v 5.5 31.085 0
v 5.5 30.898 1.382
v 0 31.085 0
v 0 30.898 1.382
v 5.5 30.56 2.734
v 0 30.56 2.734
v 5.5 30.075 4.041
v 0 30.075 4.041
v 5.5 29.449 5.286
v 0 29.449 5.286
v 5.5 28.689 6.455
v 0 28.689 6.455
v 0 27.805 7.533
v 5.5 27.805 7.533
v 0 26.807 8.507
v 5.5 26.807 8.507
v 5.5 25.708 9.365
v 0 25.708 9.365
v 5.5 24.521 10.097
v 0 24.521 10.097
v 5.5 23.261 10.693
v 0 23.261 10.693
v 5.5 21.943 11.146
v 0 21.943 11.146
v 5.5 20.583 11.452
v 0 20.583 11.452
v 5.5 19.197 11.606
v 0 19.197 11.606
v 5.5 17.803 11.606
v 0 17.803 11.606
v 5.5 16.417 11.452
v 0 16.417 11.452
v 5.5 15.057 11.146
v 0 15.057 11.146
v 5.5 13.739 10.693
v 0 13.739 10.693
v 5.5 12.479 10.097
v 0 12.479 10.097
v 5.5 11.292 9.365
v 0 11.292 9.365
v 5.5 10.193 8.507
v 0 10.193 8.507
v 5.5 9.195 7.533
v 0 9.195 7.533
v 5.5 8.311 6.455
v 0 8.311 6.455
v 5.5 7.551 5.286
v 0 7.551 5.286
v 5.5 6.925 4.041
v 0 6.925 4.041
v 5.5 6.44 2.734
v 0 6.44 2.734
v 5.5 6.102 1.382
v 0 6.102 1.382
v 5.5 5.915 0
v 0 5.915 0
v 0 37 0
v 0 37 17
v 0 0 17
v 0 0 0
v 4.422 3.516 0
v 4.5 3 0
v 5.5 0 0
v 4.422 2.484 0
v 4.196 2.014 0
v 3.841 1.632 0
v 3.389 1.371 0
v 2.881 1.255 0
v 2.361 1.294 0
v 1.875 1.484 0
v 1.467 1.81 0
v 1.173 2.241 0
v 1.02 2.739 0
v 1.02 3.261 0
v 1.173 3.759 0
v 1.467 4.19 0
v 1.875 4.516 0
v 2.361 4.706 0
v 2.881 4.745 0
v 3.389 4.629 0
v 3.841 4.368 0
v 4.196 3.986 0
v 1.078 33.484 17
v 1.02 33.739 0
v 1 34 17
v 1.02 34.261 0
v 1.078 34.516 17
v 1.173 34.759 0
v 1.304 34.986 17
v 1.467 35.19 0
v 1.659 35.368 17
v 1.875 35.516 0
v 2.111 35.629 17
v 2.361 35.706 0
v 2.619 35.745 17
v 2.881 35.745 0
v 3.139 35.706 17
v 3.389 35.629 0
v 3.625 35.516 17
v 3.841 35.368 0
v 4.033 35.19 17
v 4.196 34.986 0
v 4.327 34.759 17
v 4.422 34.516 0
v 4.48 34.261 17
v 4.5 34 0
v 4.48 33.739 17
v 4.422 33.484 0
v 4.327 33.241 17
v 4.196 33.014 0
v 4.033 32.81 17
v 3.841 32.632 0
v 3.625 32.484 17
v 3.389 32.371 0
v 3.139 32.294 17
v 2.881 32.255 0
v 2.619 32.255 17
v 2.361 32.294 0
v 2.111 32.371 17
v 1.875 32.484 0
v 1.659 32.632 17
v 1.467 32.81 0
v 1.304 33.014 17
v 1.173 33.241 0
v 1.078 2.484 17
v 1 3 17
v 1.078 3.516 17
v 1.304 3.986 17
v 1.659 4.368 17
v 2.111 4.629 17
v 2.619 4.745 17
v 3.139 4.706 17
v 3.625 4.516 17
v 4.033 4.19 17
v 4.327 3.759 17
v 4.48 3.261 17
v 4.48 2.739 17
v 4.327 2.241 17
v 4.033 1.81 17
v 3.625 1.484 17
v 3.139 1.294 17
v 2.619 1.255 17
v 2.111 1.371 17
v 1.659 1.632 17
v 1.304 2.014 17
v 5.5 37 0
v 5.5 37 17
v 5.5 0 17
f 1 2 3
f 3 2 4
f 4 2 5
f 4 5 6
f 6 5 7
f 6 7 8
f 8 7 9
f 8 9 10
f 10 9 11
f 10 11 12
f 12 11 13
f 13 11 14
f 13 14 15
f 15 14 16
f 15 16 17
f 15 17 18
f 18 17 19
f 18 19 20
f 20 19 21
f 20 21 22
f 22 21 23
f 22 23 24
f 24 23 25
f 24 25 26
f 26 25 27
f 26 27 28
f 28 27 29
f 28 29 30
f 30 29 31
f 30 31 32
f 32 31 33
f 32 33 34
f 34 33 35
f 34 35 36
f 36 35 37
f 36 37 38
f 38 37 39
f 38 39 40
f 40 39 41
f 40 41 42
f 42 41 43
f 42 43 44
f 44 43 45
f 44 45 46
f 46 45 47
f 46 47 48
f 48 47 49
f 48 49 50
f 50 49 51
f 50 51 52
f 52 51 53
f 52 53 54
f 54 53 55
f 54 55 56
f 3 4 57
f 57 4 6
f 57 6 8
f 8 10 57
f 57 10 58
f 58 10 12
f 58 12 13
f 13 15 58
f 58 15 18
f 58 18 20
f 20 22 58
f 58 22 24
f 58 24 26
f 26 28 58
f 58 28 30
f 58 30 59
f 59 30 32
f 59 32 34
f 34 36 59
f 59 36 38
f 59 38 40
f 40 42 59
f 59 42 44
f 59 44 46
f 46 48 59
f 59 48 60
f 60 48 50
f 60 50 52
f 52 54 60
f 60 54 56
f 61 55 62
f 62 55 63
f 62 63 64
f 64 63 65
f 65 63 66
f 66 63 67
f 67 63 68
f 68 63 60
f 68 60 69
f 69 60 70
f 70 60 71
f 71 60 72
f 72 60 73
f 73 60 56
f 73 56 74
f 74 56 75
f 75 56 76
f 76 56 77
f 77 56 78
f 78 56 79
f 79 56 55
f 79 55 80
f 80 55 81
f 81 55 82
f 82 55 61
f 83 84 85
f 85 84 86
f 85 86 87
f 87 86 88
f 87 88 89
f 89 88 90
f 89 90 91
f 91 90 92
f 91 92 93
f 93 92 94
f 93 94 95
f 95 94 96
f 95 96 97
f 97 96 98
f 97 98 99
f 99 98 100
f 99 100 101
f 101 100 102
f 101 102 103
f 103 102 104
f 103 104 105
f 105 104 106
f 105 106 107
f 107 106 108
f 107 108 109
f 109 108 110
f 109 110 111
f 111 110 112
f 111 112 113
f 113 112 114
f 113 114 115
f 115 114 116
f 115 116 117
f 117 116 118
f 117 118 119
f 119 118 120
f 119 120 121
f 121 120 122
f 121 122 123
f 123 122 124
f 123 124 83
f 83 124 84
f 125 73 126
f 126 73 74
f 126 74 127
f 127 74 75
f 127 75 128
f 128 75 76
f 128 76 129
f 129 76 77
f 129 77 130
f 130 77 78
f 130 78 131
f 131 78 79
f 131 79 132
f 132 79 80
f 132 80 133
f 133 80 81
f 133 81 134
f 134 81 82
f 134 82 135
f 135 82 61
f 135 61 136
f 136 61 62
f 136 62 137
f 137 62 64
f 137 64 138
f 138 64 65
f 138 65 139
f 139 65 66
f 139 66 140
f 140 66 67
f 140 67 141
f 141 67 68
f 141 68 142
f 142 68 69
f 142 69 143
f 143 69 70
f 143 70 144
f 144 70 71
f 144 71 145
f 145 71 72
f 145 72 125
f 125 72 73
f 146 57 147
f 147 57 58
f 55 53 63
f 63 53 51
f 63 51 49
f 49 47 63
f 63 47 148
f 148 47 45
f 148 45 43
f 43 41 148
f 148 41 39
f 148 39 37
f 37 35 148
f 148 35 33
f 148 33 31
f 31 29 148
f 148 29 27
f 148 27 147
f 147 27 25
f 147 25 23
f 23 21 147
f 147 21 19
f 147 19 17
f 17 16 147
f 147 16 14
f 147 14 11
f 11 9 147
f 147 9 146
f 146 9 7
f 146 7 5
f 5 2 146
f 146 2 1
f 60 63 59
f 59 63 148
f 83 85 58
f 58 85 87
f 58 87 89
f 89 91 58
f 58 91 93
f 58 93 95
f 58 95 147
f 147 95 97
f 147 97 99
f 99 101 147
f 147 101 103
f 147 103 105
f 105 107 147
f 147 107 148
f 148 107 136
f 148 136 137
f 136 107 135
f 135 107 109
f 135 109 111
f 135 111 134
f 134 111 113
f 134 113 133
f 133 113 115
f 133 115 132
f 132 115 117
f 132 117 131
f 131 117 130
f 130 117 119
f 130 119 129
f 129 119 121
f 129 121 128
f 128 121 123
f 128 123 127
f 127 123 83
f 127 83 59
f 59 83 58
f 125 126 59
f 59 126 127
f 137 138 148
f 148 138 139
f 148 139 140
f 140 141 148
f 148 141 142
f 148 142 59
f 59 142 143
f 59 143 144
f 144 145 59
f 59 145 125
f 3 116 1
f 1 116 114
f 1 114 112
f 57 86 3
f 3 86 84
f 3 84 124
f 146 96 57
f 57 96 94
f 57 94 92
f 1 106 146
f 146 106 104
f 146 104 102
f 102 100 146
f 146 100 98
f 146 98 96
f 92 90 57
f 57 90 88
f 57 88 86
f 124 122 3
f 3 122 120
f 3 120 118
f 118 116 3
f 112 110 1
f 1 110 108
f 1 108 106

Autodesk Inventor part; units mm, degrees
ref_plane "YZ Plane" through (0, 0, 0) normal (1, 0, 0) x (0, 1, 0)
ref_plane "XZ Plane" through (0, 0, 0) normal (0, 1, 0) x (-1, 0, 0)
ref_plane "XY Plane" through (0, 0, 0) normal (0, 0, 1) x (1, 0, 0)
sketch "Sketch1" plane through (0, 0, 0) normal (0, 0, 1) x (1, 0, 0)
  line L0 (0, 0) -> (5.5, 0)
  line L1 (5.5, 0) -> (5.5, 37)
  line L2 (5.5, 37) -> (0, 37)
  line L3 (0, 37) -> (0, 0)
  line L4 (0, 0) -> (5.5, 0)
  line L5 (5.5, 0) -> (5.5, 37)
  line L6 (5.5, 37) -> (0, 37)
  line L7 (0, 37) -> (0, 0)
  line L8 (0, 0) -> (5.5, 0)
  line L9 (5.5, 0) -> (5.5, 37)
  line L10 (5.5, 37) -> (0, 37)
  line L11 (0, 37) -> (0, 0)
  line L12 (0, 0) -> (5.5, 0)
  line L13 (5.5, 0) -> (5.5, 37)
  line L14 (5.5, 37) -> (0, 37)
  line L15 (0, 37) -> (0, 0)
  point P0 (2.75, 34)
  point P1 (2.75, 3)
  point P2 (2.75, 34)
  point P3 (2.75, 3)
  point P4 (2.75, 34)
  point P5 (2.75, 3)
  point P6 (2.75, 34)
  point P7 (2.75, 3)
  dimension "d0" = 5.5
  dimension "d1" = 37
  dimension "d2" = 3
  dimension "d3" = 2.75
  dimension "d4" = 3
  dimension "d5" = 5.5
  dimension "d6" = 37
  dimension "d7" = 3
  dimension "d8" = 2.75
  dimension "d9" = 3
  dimension "d10" = 5.5
  dimension "d11" = 37
  dimension "d12" = 3
  dimension "d13" = 2.75
  dimension "d14" = 3
  dimension "d15" = 5.5
  dimension "d16" = 37
  dimension "d17" = 3
  dimension "d18" = 2.75
  dimension "d19" = 3
extrude "Extrusion1" add sketch "Sketch1" along normal blind 17
sketch "Sketch2" plane through (0, 0, 0) normal (0, 0, 1) x (1, 0, 0)
  line L0 (0, 0) -> (5.5, 0)
  line L1 (5.5, 0) -> (5.5, 37)
  line L2 (5.5, 37) -> (0, 37)
  line L3 (0, 37) -> (0, 0)
  line L4 (0, 0) -> (5.5, 0)
  line L5 (5.5, 0) -> (5.5, 37)
  line L6 (5.5, 37) -> (0, 37)
  line L7 (0, 37) -> (0, 0)
  line L8 (0, 0) -> (5.5, 0)
  line L9 (5.5, 0) -> (5.5, 37)
  line L10 (5.5, 37) -> (0, 37)
  line L11 (0, 37) -> (0, 0)
  line L12 (0, 0) -> (5.5, 0)
  line L13 (5.5, 0) -> (5.5, 37)
  line L14 (5.5, 37) -> (0, 37)
  line L15 (0, 37) -> (0, 0)
  point P0 (2.75, 34)
  point P1 (2.75, 3)
  point P2 (2.75, 34)
  point P3 (2.75, 3)
  point P4 (2.75, 34)
  point P5 (2.75, 3)
  point P6 (2.75, 34)
  point P7 (2.75, 3)
  dimension "d20" = 5.5
  dimension "d21" = 37
  dimension "d22" = 3
  dimension "d23" = 2.75
  dimension "d24" = 3
  dimension "d25" = 5.5
  dimension "d26" = 37
  dimension "d27" = 3
  dimension "d28" = 2.75
  dimension "d29" = 3
  dimension "d30" = 5.5
  dimension "d31" = 37
  dimension "d32" = 3
  dimension "d33" = 2.75
  dimension "d34" = 3
  dimension "d35" = 5.5
  dimension "d36" = 37
  dimension "d37" = 3
  dimension "d38" = 2.75
  dimension "d39" = 3
hole "Hole1" at (2.75, 34, 0) at (2.75, 3, 0) direction (0, 0, 1) diameter 3.5 end through all
sketch "Sketch3" plane through (5.5, 0, 0) normal (1, 0, 0) x (0, 0, -1)
  line L0 (0, 0) -> (-17, 0) projected
  line L1 (-17, 0) -> (1, 0)
  line L2 (1, 0) -> (1, 37)
  line L3 (1, 37) -> (-17, 37)
  line L4 (-17, 37) -> (-17, 0)
  arc A0 (1, 31.125) -> (1, 5.875) centre (1, 18.5) ccw
  dimension "d49" = 18
  dimension "d50" = 25.25
extrude "Extrusion2" cut sketch "Sketch3" against normal blind 5.5 contours A0 L2
properties part number "SujetadorColaVTOLv2"
